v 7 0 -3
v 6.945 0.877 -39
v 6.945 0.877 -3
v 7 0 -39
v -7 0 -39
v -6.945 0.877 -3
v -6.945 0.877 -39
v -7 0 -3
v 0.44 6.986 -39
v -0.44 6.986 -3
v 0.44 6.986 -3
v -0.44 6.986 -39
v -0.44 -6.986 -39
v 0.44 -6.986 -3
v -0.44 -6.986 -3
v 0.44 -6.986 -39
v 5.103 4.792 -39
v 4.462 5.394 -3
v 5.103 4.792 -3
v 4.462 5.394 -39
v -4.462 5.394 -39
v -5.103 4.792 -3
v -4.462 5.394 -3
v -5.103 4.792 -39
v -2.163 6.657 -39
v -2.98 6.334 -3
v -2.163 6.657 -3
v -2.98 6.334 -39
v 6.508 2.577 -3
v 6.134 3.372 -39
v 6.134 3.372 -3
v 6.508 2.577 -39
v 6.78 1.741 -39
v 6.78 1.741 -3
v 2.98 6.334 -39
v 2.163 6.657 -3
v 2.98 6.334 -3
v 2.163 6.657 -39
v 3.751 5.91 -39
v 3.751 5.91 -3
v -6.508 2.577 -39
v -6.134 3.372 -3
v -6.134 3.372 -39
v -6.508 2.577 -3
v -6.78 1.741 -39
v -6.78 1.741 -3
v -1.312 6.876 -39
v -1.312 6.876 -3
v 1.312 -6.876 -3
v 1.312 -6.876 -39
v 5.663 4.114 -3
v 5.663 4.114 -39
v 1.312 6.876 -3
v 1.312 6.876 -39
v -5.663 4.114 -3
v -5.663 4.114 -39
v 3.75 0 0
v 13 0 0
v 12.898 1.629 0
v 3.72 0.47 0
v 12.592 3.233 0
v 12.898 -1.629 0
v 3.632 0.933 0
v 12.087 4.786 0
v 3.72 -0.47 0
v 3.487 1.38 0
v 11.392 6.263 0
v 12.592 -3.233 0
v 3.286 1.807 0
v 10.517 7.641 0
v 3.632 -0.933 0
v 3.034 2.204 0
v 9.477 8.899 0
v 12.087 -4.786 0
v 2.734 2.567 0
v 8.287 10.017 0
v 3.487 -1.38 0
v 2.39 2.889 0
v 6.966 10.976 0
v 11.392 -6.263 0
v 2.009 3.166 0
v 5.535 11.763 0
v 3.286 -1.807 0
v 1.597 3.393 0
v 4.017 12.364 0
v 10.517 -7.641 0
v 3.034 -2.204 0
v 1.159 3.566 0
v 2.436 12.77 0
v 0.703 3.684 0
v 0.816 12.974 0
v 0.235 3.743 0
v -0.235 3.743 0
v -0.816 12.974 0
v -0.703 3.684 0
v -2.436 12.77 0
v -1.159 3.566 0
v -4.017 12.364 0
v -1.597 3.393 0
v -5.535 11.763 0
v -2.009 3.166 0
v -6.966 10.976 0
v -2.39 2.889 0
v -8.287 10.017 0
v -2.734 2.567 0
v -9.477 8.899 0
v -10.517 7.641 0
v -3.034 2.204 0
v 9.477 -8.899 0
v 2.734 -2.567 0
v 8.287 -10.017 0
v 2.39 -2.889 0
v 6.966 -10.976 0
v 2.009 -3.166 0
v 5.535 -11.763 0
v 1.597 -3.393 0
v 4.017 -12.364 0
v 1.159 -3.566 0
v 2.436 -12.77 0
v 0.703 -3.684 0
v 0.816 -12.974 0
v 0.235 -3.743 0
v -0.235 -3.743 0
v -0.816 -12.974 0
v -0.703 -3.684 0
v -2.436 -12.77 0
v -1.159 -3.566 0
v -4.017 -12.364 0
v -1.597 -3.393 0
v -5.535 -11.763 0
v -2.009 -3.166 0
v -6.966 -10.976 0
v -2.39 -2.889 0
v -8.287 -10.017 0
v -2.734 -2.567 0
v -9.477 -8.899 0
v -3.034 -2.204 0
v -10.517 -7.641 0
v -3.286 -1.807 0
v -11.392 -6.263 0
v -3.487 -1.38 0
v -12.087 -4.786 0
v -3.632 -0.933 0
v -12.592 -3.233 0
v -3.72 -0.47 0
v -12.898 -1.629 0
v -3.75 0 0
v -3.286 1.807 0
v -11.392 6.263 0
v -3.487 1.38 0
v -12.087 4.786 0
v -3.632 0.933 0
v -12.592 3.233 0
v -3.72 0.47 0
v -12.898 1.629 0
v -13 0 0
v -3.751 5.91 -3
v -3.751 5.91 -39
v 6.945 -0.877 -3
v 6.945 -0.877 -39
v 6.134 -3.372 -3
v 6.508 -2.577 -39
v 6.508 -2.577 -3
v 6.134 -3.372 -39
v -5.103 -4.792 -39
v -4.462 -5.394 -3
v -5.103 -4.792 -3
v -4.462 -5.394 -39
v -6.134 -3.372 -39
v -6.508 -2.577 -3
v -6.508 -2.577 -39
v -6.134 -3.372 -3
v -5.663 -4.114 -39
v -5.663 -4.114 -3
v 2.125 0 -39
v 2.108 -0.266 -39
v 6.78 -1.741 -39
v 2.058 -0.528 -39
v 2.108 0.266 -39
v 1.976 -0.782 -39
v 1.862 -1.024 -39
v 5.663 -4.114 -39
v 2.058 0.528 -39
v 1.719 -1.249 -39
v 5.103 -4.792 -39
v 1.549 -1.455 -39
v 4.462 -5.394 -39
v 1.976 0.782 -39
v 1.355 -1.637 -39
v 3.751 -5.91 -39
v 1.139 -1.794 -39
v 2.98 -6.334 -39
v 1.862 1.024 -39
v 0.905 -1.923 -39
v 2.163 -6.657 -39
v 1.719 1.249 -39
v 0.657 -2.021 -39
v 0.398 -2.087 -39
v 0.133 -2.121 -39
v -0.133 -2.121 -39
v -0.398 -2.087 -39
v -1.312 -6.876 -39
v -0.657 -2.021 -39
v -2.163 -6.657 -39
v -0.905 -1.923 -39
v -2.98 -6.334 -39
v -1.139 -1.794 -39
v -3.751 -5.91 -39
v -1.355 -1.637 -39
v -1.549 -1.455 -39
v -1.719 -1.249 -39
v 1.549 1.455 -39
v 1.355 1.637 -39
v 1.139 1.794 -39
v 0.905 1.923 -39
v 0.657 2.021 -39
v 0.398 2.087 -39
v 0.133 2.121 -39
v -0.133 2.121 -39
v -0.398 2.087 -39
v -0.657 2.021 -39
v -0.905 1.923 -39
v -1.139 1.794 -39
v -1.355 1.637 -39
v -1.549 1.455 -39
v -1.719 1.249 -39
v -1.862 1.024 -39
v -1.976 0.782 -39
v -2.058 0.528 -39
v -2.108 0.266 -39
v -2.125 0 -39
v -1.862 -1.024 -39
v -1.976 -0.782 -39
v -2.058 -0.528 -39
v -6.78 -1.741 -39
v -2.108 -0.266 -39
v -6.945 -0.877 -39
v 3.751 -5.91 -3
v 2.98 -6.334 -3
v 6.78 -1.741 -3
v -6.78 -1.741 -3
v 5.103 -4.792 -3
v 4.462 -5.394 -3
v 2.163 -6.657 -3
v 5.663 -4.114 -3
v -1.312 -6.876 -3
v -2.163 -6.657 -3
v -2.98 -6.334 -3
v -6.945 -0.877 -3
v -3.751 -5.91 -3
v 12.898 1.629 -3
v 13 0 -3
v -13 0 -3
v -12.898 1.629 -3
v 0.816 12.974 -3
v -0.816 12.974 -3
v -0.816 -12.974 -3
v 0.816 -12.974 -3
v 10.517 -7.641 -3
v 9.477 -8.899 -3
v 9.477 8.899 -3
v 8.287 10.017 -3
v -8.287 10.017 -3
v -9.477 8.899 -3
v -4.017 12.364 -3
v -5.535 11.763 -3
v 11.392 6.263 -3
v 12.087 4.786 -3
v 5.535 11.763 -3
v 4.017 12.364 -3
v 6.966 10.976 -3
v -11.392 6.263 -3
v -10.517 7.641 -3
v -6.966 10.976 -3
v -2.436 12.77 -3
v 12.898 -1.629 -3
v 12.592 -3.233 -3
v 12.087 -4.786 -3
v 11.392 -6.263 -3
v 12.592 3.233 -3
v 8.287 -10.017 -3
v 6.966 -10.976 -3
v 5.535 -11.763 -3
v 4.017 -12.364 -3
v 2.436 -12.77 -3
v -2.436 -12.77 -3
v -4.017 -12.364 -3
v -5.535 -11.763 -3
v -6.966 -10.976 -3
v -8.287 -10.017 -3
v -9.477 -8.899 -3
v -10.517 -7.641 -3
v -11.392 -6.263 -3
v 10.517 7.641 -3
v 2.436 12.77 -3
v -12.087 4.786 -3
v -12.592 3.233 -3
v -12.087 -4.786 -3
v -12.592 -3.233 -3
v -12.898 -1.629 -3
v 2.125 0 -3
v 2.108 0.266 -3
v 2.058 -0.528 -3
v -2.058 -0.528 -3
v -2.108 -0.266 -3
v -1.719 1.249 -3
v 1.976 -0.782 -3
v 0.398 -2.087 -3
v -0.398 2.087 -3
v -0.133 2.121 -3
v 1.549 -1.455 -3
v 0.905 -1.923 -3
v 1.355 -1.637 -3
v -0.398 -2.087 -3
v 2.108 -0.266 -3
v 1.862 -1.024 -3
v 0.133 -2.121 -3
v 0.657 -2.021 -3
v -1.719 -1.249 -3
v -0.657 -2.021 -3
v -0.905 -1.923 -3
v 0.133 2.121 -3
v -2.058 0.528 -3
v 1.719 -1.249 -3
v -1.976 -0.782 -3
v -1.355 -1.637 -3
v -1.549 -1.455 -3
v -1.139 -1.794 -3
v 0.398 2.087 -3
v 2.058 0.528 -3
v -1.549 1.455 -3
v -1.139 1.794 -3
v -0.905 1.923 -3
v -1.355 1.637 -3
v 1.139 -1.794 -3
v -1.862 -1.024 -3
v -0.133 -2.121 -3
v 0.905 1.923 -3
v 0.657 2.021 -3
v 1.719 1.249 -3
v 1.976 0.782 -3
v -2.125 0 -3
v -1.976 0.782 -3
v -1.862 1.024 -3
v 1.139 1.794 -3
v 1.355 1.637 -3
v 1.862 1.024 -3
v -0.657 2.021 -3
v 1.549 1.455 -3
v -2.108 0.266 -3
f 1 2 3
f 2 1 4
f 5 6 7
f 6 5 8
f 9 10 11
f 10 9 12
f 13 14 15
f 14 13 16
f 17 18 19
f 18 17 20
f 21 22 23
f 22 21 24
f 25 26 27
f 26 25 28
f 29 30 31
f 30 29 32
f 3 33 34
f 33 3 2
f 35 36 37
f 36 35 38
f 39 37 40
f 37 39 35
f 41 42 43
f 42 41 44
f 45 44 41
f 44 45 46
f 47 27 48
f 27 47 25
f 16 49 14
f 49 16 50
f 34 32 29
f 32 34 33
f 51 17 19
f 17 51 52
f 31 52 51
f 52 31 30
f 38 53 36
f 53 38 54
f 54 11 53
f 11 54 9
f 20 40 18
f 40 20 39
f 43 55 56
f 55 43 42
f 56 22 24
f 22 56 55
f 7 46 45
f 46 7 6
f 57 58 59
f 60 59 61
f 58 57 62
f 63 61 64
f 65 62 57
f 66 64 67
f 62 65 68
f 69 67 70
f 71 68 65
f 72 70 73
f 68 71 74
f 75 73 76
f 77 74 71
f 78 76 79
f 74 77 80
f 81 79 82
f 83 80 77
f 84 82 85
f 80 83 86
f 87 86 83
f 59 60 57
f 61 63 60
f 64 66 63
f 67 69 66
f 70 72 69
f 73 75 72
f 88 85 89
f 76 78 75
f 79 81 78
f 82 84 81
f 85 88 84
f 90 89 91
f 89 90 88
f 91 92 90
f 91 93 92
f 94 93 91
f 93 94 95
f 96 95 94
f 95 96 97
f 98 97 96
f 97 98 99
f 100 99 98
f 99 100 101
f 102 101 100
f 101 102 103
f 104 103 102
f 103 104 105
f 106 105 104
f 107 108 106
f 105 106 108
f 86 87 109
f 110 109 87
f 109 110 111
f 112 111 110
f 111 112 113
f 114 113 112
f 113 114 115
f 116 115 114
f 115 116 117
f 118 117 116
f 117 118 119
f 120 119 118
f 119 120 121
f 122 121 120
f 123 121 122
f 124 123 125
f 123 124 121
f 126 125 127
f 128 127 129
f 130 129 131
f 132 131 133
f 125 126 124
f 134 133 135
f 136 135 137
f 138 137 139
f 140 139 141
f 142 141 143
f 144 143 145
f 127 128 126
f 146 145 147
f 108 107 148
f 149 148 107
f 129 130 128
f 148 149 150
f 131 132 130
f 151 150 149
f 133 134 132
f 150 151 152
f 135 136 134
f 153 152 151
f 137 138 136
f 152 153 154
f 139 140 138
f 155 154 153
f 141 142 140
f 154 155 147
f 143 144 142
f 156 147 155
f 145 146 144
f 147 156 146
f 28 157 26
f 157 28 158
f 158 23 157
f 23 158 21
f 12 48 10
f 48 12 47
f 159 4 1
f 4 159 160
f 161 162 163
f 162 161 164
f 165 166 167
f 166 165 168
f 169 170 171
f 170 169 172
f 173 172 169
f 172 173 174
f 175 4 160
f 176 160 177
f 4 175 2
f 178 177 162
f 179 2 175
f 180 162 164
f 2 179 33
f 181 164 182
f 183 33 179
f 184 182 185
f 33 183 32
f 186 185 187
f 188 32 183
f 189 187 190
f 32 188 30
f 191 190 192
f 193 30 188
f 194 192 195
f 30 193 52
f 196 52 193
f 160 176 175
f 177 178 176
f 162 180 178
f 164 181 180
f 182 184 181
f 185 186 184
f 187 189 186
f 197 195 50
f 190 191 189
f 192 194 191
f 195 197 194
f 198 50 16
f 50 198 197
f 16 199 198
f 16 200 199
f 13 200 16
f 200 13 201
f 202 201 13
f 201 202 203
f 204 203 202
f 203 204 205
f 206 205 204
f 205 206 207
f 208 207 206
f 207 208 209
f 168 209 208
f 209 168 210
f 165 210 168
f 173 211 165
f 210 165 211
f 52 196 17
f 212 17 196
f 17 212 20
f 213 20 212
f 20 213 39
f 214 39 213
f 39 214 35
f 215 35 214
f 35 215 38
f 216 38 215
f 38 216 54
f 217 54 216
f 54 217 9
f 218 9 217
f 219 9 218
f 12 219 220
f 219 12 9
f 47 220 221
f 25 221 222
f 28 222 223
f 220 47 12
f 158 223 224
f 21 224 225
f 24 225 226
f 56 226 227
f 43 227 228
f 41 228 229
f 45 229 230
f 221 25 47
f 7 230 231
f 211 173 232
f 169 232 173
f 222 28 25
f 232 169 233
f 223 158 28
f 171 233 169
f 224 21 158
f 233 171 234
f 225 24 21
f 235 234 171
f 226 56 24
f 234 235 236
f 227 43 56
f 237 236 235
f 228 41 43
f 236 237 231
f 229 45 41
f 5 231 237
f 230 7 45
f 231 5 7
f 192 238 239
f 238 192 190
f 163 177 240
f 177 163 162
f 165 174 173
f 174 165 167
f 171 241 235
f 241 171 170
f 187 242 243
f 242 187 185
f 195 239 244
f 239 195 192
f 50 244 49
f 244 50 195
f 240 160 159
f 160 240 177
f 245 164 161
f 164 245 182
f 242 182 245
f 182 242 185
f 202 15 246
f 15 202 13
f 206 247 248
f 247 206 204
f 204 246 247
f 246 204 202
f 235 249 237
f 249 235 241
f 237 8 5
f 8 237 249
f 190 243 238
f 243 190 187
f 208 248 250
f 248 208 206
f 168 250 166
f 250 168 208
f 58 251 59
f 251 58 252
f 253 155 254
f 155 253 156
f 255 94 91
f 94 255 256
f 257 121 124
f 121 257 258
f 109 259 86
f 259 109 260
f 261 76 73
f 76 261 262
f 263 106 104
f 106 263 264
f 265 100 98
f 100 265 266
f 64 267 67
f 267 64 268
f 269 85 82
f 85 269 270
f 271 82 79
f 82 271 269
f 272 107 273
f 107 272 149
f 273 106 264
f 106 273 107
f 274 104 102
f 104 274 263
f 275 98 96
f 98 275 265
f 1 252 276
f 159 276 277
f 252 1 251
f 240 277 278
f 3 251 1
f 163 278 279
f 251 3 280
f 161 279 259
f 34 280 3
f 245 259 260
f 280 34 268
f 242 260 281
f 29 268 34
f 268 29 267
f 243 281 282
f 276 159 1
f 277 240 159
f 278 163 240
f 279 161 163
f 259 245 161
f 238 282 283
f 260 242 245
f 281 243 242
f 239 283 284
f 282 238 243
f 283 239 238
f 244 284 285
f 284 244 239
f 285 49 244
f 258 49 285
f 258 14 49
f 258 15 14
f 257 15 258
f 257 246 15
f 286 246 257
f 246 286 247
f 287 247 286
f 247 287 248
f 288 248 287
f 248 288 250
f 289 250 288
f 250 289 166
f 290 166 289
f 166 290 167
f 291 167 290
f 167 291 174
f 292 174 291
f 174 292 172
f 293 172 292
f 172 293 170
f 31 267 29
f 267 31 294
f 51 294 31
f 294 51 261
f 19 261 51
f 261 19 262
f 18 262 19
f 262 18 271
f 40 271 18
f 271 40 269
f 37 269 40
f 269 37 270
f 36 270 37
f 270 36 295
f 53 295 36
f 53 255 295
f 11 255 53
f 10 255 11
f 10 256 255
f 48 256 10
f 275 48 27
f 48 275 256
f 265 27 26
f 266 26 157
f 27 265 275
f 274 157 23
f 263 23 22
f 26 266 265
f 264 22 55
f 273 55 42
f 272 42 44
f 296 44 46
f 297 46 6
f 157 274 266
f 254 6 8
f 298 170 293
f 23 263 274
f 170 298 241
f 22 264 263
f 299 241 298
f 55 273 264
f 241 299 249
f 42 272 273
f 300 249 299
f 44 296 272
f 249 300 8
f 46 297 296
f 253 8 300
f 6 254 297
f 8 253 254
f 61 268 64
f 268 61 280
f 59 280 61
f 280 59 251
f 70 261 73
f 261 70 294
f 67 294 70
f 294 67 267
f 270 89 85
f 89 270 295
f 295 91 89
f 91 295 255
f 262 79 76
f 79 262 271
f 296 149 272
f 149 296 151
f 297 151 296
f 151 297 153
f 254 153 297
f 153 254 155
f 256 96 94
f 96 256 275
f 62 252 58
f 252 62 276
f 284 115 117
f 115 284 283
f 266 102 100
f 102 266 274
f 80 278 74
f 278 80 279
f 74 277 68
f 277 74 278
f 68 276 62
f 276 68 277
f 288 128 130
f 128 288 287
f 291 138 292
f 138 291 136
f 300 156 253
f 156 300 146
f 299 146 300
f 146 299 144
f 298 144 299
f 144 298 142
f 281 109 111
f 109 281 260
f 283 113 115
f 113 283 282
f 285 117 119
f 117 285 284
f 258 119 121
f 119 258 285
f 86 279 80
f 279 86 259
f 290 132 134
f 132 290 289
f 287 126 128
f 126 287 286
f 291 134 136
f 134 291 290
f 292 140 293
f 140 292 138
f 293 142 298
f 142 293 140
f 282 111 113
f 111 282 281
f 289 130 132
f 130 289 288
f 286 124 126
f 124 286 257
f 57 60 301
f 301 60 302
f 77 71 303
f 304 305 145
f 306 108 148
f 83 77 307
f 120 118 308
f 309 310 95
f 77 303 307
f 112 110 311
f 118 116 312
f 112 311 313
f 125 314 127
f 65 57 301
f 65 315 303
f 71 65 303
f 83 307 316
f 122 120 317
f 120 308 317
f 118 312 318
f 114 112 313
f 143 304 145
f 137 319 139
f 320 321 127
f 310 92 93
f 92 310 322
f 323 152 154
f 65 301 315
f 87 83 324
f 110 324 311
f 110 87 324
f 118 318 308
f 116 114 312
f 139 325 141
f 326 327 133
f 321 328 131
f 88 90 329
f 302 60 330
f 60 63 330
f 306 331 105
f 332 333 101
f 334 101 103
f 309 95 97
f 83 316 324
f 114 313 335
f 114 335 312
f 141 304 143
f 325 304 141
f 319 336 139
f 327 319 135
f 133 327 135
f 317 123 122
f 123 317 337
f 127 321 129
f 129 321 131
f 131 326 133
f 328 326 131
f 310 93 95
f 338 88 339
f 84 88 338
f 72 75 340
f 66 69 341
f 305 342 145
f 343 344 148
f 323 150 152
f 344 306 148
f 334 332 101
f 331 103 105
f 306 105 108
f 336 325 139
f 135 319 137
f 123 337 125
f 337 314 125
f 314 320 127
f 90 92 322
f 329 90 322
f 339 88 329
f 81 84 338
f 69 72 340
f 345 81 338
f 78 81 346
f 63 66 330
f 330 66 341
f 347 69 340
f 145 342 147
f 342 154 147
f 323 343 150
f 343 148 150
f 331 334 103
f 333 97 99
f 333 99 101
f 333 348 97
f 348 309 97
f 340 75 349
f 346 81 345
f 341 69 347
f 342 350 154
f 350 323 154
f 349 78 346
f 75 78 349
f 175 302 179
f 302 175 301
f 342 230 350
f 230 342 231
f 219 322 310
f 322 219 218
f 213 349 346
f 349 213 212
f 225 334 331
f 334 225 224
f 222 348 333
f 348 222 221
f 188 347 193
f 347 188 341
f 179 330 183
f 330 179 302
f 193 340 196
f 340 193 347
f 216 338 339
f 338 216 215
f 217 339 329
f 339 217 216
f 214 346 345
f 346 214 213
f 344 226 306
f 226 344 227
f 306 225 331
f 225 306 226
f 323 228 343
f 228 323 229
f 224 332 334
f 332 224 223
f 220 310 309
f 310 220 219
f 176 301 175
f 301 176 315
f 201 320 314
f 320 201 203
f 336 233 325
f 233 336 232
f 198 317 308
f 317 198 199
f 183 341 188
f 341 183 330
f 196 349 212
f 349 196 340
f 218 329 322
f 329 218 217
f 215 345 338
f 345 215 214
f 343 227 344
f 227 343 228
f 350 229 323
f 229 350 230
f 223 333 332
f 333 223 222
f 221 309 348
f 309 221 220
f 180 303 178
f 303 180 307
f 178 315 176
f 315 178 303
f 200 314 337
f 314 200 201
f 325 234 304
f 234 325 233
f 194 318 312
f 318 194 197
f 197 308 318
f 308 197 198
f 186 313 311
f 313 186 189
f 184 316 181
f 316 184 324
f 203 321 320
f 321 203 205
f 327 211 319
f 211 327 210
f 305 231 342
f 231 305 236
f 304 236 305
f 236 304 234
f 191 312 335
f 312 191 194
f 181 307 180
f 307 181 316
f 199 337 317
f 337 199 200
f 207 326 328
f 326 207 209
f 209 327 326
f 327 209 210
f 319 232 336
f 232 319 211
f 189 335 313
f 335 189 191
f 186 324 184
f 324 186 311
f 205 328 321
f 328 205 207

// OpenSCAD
$fn = 50;


difference() {
	union() {
		translate(v = [0, 0, -39.0000000000]) {
			cylinder(h = 39, r = 7.0000000000);
		}
		translate(v = [0, 0, -3.0000000000]) {
			cylinder(h = 3, r = 13.0000000000);
		}
	}
	union() {
		translate(v = [0, 0, 0]) {
			rotate(a = [0, 0, 0]) {
				difference() {
					union() {
						#translate(v = [0, 0, -39.0000000000]) {
							cylinder(h = 39, r = 2.0000000000);
						}
						#translate(v = [0, 0, -3]) {
							cylinder(h = 3, r1 = 2.1250000000, r2 = 3.7500000000);
						}
						#translate(v = [0, 0, -39.0000000000]) {
							cylinder(h = 39, r = 2.1250000000);
						}
						#translate(v = [0, 0, -39.0000000000]) {
							cylinder(h = 39, r = 2.0000000000);
						}
					}
					union();
				}
			}
		}
	}
}
